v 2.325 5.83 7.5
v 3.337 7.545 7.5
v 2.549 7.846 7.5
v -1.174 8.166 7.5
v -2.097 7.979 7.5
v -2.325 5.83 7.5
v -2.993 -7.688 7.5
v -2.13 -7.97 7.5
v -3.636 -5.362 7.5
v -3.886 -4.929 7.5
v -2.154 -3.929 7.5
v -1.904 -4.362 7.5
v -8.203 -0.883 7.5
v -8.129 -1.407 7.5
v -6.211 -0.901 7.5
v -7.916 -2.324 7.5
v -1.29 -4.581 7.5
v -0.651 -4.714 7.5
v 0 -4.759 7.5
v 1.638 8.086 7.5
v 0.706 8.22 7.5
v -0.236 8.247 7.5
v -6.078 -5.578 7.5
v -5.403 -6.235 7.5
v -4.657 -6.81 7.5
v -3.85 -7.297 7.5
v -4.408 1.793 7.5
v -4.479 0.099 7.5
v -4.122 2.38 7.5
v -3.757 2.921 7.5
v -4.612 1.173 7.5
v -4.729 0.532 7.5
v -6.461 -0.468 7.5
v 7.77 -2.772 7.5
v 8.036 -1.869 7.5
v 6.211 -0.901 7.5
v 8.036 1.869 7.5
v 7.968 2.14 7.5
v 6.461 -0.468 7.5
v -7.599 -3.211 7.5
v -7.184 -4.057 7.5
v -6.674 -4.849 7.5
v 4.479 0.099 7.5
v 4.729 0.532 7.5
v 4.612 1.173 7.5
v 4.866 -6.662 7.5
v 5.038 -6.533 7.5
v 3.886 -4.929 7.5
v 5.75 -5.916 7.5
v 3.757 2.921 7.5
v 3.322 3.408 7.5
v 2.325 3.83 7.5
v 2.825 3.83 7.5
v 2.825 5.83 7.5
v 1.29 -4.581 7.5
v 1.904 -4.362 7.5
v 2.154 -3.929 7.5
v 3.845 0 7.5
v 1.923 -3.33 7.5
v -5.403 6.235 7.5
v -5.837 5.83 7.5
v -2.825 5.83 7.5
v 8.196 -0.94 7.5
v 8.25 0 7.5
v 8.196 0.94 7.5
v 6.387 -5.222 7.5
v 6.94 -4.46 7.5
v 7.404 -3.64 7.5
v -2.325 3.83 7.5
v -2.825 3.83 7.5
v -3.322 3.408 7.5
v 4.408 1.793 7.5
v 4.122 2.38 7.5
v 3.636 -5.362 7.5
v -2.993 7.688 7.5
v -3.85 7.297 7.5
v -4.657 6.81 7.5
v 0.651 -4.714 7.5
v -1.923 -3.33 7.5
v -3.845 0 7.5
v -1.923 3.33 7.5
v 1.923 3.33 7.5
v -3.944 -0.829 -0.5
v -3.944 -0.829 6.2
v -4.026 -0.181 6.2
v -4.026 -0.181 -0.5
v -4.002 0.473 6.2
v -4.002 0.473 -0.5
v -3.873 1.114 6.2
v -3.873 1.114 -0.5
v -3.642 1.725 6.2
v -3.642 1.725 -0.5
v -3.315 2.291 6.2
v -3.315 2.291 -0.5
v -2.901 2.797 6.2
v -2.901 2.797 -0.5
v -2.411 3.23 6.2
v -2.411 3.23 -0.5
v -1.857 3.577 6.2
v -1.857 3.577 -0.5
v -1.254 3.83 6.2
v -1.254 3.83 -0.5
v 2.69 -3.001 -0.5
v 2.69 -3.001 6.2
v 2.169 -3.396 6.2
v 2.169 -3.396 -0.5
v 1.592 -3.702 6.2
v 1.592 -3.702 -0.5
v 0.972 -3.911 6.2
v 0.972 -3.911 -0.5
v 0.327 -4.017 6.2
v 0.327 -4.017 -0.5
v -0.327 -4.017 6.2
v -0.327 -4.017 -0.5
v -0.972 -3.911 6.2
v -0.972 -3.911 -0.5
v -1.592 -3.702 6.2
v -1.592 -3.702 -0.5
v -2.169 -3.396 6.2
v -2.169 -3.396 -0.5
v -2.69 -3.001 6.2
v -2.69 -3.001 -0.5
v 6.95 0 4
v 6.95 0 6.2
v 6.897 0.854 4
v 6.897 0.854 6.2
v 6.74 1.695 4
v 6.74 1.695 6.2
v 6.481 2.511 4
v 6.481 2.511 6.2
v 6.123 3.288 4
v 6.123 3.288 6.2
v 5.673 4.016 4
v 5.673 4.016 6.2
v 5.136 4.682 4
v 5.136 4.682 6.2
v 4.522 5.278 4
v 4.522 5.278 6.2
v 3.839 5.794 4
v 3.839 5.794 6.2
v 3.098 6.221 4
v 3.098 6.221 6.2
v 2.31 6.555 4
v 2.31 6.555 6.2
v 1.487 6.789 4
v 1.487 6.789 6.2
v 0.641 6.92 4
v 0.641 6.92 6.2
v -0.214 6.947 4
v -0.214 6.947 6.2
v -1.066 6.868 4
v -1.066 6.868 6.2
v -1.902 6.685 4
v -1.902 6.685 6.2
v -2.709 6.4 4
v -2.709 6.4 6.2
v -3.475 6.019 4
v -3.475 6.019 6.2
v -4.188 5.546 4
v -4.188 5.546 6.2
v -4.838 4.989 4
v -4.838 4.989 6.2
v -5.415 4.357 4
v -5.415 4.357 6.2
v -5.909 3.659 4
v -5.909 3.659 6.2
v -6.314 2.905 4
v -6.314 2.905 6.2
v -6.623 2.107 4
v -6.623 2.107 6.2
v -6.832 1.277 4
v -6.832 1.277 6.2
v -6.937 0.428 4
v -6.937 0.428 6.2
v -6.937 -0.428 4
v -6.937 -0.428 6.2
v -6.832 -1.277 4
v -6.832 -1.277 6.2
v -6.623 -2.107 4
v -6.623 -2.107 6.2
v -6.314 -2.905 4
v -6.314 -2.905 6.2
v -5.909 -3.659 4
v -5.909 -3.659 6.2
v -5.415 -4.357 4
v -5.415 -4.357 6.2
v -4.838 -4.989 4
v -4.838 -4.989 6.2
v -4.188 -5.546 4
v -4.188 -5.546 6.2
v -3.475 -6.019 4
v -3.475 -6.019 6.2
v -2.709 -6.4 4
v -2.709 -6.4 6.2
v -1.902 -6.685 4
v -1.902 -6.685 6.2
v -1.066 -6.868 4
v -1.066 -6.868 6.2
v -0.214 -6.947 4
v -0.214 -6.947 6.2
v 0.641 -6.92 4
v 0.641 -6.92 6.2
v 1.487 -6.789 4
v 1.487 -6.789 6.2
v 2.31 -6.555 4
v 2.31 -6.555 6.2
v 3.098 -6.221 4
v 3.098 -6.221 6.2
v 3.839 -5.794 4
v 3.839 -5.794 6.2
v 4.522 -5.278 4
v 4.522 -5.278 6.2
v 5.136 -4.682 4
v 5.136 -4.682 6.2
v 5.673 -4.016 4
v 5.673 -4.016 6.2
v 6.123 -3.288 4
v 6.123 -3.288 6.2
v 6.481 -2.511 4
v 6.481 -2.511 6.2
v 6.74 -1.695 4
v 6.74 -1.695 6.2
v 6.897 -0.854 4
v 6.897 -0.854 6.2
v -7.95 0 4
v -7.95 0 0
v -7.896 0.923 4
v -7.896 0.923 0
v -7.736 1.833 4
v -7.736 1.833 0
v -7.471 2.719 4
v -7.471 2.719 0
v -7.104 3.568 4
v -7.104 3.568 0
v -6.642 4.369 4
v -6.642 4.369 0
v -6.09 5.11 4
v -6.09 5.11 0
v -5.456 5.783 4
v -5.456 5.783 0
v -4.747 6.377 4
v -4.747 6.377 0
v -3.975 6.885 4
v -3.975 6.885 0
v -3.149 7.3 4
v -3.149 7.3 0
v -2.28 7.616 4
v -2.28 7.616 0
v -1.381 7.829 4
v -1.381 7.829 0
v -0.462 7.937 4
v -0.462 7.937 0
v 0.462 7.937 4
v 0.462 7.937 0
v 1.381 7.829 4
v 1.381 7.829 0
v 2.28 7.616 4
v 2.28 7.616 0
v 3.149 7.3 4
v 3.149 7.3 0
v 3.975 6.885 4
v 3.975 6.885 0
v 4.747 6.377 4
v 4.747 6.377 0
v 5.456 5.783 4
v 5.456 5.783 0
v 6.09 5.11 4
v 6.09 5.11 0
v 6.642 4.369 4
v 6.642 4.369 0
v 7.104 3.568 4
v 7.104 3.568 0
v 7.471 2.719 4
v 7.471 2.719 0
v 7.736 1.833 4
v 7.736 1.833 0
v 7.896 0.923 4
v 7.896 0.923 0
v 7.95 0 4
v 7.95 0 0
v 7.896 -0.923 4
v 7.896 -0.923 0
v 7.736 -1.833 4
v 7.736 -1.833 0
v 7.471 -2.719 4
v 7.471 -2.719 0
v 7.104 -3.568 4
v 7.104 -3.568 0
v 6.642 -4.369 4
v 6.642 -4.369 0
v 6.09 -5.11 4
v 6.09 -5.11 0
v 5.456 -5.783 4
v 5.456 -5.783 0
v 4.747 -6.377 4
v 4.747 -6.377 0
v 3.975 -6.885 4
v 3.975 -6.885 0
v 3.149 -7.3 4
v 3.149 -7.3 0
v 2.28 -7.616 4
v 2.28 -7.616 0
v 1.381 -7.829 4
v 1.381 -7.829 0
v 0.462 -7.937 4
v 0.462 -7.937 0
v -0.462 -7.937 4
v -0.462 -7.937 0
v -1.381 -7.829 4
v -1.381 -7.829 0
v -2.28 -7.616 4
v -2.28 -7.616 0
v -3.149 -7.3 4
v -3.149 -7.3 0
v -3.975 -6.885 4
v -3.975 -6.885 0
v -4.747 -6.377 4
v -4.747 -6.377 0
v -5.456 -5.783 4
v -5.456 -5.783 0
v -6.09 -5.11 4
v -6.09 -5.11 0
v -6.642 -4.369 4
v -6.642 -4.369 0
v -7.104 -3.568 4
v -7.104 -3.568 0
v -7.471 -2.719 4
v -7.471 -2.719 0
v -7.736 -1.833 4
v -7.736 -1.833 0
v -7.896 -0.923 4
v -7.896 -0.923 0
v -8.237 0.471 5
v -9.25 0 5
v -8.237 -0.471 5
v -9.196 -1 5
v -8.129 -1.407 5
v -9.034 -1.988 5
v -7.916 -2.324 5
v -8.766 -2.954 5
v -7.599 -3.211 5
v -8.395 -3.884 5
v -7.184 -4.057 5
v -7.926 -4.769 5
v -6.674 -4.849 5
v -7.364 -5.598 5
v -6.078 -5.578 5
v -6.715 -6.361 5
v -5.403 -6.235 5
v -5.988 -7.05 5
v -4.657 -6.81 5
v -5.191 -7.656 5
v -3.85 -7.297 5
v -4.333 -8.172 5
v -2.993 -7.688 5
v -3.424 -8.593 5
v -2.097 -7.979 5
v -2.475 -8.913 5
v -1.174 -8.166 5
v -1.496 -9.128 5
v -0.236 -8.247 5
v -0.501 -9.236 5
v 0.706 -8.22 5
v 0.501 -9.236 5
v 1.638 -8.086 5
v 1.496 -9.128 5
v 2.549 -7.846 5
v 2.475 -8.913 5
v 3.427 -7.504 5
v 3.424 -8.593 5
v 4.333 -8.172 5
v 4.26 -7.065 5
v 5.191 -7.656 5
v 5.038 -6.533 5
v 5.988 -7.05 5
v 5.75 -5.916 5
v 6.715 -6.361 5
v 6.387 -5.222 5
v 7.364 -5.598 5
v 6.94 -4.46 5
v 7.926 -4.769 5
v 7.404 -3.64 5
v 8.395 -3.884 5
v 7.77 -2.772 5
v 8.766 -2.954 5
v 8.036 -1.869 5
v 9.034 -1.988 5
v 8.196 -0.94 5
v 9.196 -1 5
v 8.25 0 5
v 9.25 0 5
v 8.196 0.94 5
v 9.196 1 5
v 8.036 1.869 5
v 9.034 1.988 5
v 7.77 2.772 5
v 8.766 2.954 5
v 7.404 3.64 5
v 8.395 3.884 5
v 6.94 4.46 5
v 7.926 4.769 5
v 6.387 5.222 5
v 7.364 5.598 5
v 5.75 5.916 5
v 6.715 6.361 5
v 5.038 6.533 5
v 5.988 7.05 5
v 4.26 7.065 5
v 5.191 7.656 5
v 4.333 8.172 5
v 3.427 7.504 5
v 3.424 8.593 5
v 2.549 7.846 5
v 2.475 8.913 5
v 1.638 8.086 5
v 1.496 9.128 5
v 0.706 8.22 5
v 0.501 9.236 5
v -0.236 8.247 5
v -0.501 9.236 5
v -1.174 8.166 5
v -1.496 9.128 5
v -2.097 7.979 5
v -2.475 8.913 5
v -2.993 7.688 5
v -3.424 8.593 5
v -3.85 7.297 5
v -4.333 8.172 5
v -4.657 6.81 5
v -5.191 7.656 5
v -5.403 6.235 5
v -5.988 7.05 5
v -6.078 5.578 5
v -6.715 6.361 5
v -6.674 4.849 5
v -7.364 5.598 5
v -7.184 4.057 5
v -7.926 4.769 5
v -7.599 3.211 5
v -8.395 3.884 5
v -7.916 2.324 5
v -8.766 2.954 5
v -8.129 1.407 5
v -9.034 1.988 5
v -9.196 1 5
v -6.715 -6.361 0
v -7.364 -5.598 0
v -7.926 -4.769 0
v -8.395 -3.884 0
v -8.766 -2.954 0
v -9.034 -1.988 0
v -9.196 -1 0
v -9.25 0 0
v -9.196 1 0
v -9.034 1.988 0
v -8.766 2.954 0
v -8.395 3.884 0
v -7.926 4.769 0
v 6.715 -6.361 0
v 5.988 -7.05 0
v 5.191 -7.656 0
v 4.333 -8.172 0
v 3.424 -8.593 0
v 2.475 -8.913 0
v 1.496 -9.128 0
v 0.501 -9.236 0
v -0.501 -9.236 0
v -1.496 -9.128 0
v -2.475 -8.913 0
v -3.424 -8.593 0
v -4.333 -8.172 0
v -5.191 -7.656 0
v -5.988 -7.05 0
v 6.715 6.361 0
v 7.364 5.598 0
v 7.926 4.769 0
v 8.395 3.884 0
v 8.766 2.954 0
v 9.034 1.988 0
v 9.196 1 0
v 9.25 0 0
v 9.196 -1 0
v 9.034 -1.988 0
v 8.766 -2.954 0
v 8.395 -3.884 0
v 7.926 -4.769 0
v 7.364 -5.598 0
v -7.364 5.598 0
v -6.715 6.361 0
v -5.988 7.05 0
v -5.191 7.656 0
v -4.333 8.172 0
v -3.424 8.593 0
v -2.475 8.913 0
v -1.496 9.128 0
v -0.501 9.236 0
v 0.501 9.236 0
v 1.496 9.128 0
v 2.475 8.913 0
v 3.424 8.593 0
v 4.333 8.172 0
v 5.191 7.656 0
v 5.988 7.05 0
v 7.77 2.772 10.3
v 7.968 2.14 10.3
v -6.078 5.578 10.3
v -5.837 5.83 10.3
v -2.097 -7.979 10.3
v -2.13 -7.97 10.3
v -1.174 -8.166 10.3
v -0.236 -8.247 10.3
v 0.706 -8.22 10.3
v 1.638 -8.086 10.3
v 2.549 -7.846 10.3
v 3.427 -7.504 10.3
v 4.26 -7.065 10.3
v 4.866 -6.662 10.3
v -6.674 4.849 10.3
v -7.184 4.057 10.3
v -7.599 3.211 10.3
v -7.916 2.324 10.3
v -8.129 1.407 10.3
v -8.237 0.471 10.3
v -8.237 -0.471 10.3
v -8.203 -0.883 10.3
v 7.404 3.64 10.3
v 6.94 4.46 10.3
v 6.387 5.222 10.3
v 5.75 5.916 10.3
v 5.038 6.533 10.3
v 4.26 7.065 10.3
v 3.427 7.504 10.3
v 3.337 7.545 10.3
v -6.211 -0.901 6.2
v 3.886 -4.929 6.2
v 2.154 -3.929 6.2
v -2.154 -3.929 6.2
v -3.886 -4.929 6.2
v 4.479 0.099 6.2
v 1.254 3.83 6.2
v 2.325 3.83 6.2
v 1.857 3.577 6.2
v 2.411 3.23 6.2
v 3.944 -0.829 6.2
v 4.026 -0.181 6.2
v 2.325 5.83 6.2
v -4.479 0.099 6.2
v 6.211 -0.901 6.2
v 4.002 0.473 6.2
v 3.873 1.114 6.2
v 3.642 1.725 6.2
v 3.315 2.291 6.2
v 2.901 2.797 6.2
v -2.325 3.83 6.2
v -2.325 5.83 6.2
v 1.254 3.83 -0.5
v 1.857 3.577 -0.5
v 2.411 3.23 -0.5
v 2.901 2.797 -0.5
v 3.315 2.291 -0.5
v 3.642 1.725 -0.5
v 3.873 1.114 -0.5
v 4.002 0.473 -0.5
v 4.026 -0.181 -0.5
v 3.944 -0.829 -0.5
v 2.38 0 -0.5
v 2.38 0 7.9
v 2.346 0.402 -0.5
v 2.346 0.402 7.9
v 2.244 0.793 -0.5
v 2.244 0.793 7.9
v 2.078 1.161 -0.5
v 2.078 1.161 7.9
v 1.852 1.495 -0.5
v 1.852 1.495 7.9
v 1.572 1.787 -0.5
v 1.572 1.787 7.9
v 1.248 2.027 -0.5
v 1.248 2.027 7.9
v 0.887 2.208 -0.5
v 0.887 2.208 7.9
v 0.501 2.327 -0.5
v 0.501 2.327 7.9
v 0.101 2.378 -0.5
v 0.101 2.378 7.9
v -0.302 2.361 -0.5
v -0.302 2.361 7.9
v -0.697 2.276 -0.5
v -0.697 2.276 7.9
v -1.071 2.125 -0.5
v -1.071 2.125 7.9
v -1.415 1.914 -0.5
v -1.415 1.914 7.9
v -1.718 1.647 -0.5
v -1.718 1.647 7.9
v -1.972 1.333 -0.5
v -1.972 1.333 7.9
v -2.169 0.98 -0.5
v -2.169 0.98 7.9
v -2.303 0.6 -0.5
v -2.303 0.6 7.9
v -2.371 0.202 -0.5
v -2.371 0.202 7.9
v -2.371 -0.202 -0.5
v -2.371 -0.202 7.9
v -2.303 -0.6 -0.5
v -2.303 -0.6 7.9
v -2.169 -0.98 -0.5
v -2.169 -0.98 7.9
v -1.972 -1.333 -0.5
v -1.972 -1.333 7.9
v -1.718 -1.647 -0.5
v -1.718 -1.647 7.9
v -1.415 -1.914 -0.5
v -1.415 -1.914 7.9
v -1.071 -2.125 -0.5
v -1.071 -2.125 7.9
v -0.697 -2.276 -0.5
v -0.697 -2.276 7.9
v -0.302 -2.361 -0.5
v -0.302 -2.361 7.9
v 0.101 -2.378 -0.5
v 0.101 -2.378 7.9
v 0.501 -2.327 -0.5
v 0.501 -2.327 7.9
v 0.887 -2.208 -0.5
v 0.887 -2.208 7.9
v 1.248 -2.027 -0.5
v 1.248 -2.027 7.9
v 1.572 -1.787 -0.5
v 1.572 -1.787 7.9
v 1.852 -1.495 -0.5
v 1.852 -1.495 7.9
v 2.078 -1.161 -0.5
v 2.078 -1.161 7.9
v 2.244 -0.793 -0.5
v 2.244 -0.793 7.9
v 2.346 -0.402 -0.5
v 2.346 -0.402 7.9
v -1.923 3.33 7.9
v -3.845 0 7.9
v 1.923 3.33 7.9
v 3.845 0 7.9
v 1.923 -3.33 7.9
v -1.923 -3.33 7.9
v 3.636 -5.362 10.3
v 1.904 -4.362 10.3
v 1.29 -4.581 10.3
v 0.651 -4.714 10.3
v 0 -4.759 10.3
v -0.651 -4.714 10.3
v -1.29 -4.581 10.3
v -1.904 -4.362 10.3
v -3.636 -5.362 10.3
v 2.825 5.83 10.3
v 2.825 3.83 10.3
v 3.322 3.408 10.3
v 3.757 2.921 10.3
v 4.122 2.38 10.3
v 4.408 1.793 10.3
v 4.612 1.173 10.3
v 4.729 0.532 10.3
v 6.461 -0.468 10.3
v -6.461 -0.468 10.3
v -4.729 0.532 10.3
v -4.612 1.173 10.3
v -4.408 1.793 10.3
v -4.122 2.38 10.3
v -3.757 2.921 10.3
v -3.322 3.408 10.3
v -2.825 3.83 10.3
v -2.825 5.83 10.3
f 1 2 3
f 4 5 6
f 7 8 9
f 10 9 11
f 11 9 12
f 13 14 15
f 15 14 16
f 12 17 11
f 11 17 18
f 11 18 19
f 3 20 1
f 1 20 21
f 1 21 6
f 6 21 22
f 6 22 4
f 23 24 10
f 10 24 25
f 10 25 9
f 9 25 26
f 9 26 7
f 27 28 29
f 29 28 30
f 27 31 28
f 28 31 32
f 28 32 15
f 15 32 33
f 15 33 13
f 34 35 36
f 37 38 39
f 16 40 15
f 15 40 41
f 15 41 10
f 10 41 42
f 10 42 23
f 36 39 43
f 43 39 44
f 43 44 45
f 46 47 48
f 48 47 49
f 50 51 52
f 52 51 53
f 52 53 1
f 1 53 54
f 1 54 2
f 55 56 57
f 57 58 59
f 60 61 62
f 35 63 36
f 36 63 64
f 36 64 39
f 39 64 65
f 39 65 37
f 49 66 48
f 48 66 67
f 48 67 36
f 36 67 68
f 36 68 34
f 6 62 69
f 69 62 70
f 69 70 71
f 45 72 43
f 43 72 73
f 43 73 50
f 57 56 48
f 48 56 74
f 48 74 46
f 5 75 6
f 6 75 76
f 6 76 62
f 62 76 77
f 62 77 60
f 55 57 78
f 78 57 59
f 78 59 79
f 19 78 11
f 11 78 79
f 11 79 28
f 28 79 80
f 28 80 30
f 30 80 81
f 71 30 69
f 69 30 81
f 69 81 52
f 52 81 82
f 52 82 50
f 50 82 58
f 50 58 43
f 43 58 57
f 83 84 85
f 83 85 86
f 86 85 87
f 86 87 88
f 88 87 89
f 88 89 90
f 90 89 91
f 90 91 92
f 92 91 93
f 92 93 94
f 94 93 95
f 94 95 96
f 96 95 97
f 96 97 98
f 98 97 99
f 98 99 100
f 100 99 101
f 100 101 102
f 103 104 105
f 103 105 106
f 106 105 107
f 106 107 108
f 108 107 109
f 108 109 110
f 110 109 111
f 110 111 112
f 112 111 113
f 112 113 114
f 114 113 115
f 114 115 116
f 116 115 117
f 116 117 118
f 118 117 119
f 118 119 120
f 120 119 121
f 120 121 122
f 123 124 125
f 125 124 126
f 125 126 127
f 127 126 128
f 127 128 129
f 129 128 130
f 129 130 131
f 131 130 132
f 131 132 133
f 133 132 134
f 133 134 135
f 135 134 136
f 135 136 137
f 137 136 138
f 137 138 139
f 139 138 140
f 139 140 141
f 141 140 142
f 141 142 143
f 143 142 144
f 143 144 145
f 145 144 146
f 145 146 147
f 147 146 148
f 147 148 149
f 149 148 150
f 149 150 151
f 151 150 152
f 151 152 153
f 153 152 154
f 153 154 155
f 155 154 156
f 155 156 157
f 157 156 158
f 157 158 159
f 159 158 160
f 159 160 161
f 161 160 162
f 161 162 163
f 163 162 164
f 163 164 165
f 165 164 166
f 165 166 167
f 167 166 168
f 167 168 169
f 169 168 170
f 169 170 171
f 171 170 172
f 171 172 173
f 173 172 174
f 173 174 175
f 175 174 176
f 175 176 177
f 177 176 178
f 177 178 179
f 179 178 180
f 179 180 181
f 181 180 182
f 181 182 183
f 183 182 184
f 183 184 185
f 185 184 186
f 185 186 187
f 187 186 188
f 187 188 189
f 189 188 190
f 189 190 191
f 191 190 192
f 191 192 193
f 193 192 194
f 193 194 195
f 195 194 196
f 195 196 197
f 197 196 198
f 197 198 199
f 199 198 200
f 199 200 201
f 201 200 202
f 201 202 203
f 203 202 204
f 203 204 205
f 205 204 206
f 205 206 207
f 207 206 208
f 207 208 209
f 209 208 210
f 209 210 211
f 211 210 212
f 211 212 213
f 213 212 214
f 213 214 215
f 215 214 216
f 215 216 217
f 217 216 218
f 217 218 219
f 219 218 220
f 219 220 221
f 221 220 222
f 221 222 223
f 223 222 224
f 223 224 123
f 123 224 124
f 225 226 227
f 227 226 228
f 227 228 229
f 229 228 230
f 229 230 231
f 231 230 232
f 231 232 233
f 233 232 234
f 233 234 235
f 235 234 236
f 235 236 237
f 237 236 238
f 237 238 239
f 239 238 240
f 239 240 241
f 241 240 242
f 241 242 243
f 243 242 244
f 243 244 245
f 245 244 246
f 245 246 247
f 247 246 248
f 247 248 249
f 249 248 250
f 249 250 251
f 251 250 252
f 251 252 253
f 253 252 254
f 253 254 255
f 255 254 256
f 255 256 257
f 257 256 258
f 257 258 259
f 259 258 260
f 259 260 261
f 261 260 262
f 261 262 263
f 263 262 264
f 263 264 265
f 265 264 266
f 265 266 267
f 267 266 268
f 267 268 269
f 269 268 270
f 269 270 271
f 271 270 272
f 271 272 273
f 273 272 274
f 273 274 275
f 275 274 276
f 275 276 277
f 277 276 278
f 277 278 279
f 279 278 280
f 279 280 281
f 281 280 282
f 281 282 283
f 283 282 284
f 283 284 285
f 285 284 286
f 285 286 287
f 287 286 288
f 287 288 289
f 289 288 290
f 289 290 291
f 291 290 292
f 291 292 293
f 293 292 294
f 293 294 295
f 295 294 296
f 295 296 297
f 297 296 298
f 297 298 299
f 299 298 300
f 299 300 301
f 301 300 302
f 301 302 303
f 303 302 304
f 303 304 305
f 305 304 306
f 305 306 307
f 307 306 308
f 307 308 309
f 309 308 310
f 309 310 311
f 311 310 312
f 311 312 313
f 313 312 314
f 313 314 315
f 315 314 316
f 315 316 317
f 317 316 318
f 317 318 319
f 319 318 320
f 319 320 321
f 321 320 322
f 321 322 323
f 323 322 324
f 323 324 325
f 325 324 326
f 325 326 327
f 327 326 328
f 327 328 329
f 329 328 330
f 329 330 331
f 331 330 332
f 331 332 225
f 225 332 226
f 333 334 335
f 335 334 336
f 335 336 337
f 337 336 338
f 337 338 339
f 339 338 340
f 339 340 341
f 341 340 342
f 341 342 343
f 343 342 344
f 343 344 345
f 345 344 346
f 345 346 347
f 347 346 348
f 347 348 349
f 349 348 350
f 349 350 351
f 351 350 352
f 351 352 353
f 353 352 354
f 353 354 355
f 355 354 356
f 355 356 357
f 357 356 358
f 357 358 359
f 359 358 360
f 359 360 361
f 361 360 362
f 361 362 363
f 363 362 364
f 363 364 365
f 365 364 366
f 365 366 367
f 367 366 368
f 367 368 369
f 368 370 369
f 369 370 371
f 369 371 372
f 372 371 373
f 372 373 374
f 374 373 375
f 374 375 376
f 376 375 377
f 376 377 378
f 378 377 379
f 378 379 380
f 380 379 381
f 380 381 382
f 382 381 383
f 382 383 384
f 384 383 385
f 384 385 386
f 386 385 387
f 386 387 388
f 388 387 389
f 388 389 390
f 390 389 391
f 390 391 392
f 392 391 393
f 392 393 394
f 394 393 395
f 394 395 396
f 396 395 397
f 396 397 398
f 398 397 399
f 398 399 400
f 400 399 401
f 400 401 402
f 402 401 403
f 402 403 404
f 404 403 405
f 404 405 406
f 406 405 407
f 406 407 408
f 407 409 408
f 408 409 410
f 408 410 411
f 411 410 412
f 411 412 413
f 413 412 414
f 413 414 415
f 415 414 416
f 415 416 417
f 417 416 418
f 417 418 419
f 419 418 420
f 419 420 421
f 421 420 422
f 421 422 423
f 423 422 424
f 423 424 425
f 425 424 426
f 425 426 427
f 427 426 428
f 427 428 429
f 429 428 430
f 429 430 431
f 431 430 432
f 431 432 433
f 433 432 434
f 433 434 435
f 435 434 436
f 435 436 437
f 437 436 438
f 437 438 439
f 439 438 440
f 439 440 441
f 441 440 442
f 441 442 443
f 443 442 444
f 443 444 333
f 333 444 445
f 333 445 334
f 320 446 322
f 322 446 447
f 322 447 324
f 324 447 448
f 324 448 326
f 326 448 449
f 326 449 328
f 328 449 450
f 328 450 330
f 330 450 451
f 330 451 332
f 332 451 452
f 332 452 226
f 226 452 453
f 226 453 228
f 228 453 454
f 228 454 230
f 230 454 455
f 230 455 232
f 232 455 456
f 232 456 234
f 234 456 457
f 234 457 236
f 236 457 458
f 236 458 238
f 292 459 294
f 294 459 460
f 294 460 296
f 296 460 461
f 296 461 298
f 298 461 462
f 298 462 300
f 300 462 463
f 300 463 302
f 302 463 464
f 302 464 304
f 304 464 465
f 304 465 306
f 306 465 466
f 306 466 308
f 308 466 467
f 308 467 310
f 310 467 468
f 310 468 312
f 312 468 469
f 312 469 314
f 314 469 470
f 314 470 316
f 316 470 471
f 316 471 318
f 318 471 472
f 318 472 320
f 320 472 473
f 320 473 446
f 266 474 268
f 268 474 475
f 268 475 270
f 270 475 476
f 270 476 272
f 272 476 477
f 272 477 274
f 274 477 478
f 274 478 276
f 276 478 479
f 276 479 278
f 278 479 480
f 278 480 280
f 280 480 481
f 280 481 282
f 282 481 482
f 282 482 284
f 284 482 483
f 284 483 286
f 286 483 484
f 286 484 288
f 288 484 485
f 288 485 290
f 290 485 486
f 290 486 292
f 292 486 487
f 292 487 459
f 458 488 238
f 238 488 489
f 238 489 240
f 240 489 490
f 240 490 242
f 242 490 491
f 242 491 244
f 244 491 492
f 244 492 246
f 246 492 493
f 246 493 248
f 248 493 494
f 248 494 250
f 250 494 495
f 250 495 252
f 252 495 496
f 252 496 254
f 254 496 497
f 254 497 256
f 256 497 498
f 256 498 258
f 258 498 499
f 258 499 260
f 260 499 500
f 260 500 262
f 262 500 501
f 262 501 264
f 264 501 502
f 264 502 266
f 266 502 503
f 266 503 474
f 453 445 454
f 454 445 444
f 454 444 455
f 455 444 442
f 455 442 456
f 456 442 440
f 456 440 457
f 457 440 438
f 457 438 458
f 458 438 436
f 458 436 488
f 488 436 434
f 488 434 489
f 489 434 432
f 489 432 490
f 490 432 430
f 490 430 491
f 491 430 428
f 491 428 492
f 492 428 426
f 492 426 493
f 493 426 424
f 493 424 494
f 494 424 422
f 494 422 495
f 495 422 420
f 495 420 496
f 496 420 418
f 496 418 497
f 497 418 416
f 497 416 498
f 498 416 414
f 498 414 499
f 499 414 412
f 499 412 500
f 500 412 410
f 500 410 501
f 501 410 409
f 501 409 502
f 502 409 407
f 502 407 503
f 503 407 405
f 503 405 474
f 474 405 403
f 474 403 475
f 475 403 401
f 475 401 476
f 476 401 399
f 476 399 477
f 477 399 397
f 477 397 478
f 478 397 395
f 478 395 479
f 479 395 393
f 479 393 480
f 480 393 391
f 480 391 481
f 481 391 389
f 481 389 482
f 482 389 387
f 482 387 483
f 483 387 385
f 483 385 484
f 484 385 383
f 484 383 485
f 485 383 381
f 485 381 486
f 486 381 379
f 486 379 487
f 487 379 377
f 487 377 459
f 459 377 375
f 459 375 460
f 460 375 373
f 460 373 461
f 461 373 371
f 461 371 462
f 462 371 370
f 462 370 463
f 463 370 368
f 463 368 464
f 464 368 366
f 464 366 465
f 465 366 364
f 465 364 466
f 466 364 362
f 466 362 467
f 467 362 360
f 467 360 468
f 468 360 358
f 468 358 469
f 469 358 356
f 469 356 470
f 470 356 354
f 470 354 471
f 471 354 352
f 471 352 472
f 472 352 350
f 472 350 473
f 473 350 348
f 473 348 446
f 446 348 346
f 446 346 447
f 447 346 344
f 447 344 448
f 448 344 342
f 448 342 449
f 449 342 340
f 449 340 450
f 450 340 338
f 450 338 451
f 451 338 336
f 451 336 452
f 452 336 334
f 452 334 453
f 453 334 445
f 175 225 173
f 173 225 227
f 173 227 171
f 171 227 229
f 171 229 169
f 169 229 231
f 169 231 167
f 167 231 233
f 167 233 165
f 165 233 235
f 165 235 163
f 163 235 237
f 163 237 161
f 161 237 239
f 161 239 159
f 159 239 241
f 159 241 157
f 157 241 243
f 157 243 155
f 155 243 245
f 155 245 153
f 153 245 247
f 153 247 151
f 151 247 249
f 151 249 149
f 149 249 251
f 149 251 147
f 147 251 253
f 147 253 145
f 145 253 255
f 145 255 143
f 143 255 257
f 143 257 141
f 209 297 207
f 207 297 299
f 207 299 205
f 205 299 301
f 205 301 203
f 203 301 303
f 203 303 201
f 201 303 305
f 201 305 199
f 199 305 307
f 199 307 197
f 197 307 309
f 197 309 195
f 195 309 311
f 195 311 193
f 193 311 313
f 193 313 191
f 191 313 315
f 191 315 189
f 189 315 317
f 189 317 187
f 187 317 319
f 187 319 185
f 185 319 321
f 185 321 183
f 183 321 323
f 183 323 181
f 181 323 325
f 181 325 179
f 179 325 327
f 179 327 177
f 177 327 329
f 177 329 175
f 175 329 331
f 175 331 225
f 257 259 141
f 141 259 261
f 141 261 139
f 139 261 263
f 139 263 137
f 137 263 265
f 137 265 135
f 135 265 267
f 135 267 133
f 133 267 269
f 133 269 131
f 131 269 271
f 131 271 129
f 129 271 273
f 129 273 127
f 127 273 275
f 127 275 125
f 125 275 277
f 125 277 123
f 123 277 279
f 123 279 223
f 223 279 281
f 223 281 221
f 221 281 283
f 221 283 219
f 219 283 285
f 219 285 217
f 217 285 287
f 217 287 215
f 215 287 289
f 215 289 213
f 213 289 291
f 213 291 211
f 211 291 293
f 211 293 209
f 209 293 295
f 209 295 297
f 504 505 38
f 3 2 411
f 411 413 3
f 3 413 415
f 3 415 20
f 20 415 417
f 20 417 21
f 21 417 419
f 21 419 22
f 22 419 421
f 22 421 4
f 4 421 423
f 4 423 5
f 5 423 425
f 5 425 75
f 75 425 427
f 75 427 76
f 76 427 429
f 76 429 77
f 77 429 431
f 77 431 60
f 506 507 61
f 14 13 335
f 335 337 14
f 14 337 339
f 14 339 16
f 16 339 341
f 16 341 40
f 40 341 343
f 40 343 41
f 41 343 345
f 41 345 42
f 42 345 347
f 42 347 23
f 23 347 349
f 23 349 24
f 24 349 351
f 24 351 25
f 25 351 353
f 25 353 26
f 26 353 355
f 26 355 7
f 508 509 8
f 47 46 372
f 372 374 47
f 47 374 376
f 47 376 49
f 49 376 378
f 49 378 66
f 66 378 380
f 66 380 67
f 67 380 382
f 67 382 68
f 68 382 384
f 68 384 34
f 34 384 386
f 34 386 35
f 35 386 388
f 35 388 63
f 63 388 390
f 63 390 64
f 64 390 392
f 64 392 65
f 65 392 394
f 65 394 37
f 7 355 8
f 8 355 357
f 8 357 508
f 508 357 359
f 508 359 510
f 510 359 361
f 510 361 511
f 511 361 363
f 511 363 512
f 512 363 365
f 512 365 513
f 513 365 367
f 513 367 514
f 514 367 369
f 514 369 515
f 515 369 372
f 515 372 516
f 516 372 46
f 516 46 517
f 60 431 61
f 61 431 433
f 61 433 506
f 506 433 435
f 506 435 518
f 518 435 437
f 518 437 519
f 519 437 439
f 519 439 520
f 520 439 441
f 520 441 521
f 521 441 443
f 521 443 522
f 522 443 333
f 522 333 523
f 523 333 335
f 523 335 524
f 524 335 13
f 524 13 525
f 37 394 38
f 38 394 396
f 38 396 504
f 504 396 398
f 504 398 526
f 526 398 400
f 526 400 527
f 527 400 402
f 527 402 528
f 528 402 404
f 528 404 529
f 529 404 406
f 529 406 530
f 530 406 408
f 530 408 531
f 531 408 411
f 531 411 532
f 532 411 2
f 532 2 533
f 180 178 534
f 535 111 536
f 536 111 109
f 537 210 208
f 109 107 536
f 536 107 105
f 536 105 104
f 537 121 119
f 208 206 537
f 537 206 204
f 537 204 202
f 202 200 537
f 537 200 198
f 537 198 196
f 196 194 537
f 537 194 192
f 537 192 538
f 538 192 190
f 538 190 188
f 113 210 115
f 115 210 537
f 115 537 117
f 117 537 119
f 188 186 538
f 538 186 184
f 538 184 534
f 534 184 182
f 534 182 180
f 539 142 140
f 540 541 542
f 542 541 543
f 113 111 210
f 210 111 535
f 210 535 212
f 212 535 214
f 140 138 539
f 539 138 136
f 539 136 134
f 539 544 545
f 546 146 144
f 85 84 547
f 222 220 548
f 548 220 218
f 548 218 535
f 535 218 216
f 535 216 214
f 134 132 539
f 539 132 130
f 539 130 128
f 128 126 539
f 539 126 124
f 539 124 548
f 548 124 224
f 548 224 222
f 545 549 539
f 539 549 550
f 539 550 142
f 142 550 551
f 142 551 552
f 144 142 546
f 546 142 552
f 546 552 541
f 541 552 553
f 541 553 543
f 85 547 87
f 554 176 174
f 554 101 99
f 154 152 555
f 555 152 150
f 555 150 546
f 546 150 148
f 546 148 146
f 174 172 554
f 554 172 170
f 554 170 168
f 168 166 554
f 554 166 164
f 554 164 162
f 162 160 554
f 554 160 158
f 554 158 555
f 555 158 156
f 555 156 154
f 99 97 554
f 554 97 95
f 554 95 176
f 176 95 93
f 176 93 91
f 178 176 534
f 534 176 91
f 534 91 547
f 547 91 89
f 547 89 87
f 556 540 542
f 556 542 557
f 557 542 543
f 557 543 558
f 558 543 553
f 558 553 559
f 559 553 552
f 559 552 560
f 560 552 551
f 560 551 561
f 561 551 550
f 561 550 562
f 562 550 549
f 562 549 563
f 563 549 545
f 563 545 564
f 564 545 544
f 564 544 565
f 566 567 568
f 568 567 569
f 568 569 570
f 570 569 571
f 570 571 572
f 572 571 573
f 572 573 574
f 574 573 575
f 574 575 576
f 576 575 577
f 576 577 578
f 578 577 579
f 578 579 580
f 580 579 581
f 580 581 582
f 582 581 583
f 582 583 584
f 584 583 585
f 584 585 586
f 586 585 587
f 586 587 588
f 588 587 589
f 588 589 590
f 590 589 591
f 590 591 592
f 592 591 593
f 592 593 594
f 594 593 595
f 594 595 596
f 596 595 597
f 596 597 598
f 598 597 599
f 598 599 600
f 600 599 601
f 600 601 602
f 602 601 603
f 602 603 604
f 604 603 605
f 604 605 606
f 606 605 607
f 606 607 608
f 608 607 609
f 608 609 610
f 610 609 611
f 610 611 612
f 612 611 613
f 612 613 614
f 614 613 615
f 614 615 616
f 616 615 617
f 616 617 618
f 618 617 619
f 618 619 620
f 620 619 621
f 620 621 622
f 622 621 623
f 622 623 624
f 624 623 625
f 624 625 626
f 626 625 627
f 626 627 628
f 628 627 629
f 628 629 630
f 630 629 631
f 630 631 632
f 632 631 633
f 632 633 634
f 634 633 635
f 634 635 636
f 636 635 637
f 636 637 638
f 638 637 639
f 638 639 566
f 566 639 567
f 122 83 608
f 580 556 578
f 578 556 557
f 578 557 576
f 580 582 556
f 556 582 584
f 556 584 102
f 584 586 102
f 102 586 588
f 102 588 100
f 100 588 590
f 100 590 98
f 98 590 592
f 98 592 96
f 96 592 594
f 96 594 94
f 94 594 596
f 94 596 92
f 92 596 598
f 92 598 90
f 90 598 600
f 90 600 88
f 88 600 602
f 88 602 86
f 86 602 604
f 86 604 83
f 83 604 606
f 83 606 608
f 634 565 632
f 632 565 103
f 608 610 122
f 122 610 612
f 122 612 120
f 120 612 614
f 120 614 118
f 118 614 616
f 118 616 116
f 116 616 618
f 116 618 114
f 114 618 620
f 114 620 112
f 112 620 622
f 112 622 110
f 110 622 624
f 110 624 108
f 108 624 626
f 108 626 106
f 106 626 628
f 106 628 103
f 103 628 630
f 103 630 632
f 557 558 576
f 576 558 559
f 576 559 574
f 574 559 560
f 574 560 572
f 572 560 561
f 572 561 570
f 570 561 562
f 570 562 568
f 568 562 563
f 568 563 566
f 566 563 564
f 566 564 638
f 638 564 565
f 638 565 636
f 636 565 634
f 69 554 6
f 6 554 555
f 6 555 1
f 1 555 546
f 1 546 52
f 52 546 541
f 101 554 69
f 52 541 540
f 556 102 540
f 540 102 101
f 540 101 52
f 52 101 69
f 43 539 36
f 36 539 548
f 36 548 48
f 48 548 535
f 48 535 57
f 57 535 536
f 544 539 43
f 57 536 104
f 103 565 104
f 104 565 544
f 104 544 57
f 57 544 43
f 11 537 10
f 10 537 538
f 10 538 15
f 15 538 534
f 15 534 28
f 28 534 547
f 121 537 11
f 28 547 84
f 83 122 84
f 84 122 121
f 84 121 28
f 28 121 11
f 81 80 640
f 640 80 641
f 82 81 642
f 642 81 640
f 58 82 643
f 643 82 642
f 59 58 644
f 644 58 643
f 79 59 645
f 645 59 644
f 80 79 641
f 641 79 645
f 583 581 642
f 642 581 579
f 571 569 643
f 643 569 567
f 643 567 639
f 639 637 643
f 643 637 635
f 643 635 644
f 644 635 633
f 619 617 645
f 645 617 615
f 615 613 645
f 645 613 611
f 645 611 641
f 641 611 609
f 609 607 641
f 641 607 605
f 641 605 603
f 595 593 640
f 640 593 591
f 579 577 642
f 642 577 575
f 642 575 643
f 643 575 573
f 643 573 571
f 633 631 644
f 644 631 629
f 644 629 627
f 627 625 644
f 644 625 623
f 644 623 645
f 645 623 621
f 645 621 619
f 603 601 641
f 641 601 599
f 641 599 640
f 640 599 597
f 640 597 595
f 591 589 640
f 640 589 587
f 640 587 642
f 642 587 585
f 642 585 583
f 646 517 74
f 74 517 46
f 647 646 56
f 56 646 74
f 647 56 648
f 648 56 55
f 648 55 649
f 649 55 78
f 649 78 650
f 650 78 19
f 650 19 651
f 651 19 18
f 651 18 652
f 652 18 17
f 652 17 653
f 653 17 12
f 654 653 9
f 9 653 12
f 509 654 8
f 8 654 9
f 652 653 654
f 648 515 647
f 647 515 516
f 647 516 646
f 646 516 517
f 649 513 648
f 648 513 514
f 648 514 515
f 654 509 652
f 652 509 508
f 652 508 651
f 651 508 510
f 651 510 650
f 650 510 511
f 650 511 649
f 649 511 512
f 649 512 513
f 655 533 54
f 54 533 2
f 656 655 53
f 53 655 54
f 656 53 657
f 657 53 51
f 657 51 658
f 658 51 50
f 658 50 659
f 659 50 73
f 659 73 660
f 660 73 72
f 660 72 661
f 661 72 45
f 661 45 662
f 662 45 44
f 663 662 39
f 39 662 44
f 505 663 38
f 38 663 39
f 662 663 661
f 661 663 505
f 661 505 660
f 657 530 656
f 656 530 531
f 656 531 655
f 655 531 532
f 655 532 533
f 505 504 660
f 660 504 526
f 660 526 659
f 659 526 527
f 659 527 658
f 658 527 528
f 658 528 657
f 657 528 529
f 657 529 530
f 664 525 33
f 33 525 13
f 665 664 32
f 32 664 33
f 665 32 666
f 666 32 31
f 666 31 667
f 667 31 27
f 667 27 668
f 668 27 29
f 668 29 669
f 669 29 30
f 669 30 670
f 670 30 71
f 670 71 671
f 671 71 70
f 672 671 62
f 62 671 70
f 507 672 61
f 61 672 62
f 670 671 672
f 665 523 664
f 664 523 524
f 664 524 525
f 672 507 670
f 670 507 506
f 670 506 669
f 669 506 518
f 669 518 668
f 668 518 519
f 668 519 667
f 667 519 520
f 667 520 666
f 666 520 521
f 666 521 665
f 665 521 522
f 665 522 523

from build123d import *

# Parameters (mm, degrees)
SKETCH1_R                = 9.25
SKETCH1_R_2              = 7.95
BOSS_EXTRUDE1_DEPTH      = 5
BOSS_EXTRUDE2_START      = 5
SKETCH3_R                = 8.25
SKETCH3_R_2              = 6.95
BOSS_EXTRUDE2_DEPTH      = 2.5
BOSS_EXTRUDE2_DEPTH_BACK = 1
SKETCH4_R                = 8.25
BOSS_EXTRUDE3_DEPTH      = 1.3
SKETCH5_R                = 4.03
SKETCH5_R_2              = 2.38
BOSS_EXTRUDE4_DEPTH      = 6.7
SKETCH5_2_R              = 2.38
CUT_EXTRUDE1_DEPTH       = 15.697448758
SKETCH6_W                = 4.65
SKETCH6_H                = 2
CUT_EXTRUDE2_DEPTH       = 16.333786225
CIRPATTERN1_COUNT        = 3
SKETCH7_R                = 2.38
BOSS_EXTRUDE5_DEPTH      = 0.4
BOSS_EXTRUDE6_DEPTH      = 2.8
CIRPATTERN2_COUNT        = 3


with BuildPart() as part:
    # Sketch1 → Boss-Extrude1 (new body)
    with BuildSketch(Plane.XY):
        Circle(SKETCH1_R)
        Circle(SKETCH1_R_2, mode=Mode.SUBTRACT)
    extrude(amount=BOSS_EXTRUDE1_DEPTH)

    # Sketch3 → Boss-Extrude2 (add, two sides)
    with BuildSketch(Plane.XY.offset(BOSS_EXTRUDE2_START)) as boss_extrude2_sk:
        Circle(SKETCH3_R)
        Circle(SKETCH3_R_2, mode=Mode.SUBTRACT)
    extrude(amount=BOSS_EXTRUDE2_DEPTH)
    extrude(boss_extrude2_sk.sketch, amount=-BOSS_EXTRUDE2_DEPTH_BACK)

    # Sketch4 → Boss-Extrude3 (add)
    with BuildSketch(Plane.XY.offset(7.5)):
        Circle(SKETCH4_R)
    extrude(amount=-BOSS_EXTRUDE3_DEPTH)

    # Sketch5 → Boss-Extrude4 (add)
    with BuildSketch(Plane(origin=(0, 0, 6.2), x_dir=(-1, 0, 0), z_dir=(0, 0, -1))):
        with Locations(Location((0, 0, 0), (0, 0, 180))):
            Circle(SKETCH5_R)
        with Locations(Location((0, 0, 0), (0, 0, 180))):
            Circle(SKETCH5_R_2, mode=Mode.SUBTRACT)
    extrude(amount=BOSS_EXTRUDE4_DEPTH)

    # Sketch5<2> → Cut-Extrude1 (cut, through all)
    with BuildSketch(Plane(origin=(0, 0, 6.2), x_dir=(-1, 0, 0), z_dir=(0, 0, -1))):
        with Locations(Location((0, 0, 0), (0, 0, 180))):
            Circle(SKETCH5_2_R)
    extrude(amount=-CUT_EXTRUDE1_DEPTH, mode=Mode.SUBTRACT)

    # Sketch6 → Cut-Extrude2 (cut, through all)
    with BuildSketch(Plane.XY.offset(7.5)):
        with Locations((0, 4.83)):
            Rectangle(SKETCH6_W, SKETCH6_H)
    cut_extrude2 = extrude(amount=-CUT_EXTRUDE2_DEPTH, mode=Mode.SUBTRACT)

    # CirPattern1: Cut-Extrude2 ×3 about axis
    cirpattern1_axis = Axis((0, 0, 0), (0, 0, 1))
    for i in range(1, CIRPATTERN1_COUNT):
        add(cut_extrude2.rotate(cirpattern1_axis, i * 360 / CIRPATTERN1_COUNT), mode=Mode.SUBTRACT)

    # Sketch7 → Boss-Extrude5 (add)
    with BuildSketch(Plane.XY.offset(7.5)):
        Polygon((-1.922576396, -3.33), (1.922576396, -3.33), (3.845152793, 0), (1.922576396, 3.33), (-1.922576396, 3.33), (-3.845152793, 0), align=None)
        Circle(SKETCH7_R, mode=Mode.SUBTRACT)
    extrude(amount=BOSS_EXTRUDE5_DEPTH)

    # Sketch8 → Boss-Extrude6 (add)
    with BuildSketch(Plane.XY.offset(7.5)):
        with BuildLine():
            Line((3.636428104, -5.361521766), (1.904377296, -4.361521766))
            ThreePointArc((1.904377296, -4.361521766), (0, -4.75915171), (-1.904377296, -4.361521766))
            Line((-1.904377296, -4.361521766), (-3.636428104, -5.361521766))
            Line((-3.636428104, -5.361521766), (-2.130298289, -7.970215129))
            ThreePointArc((-2.130298289, -7.970215129), (1.516159822, -8.109485766), (4.865989618, -6.662180201))
            Line((4.865989618, -6.662180201), (3.636428104, -5.361521766))
        make_face()
    boss_extrude6 = extrude(amount=BOSS_EXTRUDE6_DEPTH)

    # CirPattern2: Boss-Extrude6 ×3 about axis
    cirpattern2_axis = Axis((0, 0, 0), (0, 0, 1))
    for i in range(1, CIRPATTERN2_COUNT):
        add(boss_extrude6.rotate(cirpattern2_axis, i * 360 / CIRPATTERN2_COUNT))


solid = part.part
